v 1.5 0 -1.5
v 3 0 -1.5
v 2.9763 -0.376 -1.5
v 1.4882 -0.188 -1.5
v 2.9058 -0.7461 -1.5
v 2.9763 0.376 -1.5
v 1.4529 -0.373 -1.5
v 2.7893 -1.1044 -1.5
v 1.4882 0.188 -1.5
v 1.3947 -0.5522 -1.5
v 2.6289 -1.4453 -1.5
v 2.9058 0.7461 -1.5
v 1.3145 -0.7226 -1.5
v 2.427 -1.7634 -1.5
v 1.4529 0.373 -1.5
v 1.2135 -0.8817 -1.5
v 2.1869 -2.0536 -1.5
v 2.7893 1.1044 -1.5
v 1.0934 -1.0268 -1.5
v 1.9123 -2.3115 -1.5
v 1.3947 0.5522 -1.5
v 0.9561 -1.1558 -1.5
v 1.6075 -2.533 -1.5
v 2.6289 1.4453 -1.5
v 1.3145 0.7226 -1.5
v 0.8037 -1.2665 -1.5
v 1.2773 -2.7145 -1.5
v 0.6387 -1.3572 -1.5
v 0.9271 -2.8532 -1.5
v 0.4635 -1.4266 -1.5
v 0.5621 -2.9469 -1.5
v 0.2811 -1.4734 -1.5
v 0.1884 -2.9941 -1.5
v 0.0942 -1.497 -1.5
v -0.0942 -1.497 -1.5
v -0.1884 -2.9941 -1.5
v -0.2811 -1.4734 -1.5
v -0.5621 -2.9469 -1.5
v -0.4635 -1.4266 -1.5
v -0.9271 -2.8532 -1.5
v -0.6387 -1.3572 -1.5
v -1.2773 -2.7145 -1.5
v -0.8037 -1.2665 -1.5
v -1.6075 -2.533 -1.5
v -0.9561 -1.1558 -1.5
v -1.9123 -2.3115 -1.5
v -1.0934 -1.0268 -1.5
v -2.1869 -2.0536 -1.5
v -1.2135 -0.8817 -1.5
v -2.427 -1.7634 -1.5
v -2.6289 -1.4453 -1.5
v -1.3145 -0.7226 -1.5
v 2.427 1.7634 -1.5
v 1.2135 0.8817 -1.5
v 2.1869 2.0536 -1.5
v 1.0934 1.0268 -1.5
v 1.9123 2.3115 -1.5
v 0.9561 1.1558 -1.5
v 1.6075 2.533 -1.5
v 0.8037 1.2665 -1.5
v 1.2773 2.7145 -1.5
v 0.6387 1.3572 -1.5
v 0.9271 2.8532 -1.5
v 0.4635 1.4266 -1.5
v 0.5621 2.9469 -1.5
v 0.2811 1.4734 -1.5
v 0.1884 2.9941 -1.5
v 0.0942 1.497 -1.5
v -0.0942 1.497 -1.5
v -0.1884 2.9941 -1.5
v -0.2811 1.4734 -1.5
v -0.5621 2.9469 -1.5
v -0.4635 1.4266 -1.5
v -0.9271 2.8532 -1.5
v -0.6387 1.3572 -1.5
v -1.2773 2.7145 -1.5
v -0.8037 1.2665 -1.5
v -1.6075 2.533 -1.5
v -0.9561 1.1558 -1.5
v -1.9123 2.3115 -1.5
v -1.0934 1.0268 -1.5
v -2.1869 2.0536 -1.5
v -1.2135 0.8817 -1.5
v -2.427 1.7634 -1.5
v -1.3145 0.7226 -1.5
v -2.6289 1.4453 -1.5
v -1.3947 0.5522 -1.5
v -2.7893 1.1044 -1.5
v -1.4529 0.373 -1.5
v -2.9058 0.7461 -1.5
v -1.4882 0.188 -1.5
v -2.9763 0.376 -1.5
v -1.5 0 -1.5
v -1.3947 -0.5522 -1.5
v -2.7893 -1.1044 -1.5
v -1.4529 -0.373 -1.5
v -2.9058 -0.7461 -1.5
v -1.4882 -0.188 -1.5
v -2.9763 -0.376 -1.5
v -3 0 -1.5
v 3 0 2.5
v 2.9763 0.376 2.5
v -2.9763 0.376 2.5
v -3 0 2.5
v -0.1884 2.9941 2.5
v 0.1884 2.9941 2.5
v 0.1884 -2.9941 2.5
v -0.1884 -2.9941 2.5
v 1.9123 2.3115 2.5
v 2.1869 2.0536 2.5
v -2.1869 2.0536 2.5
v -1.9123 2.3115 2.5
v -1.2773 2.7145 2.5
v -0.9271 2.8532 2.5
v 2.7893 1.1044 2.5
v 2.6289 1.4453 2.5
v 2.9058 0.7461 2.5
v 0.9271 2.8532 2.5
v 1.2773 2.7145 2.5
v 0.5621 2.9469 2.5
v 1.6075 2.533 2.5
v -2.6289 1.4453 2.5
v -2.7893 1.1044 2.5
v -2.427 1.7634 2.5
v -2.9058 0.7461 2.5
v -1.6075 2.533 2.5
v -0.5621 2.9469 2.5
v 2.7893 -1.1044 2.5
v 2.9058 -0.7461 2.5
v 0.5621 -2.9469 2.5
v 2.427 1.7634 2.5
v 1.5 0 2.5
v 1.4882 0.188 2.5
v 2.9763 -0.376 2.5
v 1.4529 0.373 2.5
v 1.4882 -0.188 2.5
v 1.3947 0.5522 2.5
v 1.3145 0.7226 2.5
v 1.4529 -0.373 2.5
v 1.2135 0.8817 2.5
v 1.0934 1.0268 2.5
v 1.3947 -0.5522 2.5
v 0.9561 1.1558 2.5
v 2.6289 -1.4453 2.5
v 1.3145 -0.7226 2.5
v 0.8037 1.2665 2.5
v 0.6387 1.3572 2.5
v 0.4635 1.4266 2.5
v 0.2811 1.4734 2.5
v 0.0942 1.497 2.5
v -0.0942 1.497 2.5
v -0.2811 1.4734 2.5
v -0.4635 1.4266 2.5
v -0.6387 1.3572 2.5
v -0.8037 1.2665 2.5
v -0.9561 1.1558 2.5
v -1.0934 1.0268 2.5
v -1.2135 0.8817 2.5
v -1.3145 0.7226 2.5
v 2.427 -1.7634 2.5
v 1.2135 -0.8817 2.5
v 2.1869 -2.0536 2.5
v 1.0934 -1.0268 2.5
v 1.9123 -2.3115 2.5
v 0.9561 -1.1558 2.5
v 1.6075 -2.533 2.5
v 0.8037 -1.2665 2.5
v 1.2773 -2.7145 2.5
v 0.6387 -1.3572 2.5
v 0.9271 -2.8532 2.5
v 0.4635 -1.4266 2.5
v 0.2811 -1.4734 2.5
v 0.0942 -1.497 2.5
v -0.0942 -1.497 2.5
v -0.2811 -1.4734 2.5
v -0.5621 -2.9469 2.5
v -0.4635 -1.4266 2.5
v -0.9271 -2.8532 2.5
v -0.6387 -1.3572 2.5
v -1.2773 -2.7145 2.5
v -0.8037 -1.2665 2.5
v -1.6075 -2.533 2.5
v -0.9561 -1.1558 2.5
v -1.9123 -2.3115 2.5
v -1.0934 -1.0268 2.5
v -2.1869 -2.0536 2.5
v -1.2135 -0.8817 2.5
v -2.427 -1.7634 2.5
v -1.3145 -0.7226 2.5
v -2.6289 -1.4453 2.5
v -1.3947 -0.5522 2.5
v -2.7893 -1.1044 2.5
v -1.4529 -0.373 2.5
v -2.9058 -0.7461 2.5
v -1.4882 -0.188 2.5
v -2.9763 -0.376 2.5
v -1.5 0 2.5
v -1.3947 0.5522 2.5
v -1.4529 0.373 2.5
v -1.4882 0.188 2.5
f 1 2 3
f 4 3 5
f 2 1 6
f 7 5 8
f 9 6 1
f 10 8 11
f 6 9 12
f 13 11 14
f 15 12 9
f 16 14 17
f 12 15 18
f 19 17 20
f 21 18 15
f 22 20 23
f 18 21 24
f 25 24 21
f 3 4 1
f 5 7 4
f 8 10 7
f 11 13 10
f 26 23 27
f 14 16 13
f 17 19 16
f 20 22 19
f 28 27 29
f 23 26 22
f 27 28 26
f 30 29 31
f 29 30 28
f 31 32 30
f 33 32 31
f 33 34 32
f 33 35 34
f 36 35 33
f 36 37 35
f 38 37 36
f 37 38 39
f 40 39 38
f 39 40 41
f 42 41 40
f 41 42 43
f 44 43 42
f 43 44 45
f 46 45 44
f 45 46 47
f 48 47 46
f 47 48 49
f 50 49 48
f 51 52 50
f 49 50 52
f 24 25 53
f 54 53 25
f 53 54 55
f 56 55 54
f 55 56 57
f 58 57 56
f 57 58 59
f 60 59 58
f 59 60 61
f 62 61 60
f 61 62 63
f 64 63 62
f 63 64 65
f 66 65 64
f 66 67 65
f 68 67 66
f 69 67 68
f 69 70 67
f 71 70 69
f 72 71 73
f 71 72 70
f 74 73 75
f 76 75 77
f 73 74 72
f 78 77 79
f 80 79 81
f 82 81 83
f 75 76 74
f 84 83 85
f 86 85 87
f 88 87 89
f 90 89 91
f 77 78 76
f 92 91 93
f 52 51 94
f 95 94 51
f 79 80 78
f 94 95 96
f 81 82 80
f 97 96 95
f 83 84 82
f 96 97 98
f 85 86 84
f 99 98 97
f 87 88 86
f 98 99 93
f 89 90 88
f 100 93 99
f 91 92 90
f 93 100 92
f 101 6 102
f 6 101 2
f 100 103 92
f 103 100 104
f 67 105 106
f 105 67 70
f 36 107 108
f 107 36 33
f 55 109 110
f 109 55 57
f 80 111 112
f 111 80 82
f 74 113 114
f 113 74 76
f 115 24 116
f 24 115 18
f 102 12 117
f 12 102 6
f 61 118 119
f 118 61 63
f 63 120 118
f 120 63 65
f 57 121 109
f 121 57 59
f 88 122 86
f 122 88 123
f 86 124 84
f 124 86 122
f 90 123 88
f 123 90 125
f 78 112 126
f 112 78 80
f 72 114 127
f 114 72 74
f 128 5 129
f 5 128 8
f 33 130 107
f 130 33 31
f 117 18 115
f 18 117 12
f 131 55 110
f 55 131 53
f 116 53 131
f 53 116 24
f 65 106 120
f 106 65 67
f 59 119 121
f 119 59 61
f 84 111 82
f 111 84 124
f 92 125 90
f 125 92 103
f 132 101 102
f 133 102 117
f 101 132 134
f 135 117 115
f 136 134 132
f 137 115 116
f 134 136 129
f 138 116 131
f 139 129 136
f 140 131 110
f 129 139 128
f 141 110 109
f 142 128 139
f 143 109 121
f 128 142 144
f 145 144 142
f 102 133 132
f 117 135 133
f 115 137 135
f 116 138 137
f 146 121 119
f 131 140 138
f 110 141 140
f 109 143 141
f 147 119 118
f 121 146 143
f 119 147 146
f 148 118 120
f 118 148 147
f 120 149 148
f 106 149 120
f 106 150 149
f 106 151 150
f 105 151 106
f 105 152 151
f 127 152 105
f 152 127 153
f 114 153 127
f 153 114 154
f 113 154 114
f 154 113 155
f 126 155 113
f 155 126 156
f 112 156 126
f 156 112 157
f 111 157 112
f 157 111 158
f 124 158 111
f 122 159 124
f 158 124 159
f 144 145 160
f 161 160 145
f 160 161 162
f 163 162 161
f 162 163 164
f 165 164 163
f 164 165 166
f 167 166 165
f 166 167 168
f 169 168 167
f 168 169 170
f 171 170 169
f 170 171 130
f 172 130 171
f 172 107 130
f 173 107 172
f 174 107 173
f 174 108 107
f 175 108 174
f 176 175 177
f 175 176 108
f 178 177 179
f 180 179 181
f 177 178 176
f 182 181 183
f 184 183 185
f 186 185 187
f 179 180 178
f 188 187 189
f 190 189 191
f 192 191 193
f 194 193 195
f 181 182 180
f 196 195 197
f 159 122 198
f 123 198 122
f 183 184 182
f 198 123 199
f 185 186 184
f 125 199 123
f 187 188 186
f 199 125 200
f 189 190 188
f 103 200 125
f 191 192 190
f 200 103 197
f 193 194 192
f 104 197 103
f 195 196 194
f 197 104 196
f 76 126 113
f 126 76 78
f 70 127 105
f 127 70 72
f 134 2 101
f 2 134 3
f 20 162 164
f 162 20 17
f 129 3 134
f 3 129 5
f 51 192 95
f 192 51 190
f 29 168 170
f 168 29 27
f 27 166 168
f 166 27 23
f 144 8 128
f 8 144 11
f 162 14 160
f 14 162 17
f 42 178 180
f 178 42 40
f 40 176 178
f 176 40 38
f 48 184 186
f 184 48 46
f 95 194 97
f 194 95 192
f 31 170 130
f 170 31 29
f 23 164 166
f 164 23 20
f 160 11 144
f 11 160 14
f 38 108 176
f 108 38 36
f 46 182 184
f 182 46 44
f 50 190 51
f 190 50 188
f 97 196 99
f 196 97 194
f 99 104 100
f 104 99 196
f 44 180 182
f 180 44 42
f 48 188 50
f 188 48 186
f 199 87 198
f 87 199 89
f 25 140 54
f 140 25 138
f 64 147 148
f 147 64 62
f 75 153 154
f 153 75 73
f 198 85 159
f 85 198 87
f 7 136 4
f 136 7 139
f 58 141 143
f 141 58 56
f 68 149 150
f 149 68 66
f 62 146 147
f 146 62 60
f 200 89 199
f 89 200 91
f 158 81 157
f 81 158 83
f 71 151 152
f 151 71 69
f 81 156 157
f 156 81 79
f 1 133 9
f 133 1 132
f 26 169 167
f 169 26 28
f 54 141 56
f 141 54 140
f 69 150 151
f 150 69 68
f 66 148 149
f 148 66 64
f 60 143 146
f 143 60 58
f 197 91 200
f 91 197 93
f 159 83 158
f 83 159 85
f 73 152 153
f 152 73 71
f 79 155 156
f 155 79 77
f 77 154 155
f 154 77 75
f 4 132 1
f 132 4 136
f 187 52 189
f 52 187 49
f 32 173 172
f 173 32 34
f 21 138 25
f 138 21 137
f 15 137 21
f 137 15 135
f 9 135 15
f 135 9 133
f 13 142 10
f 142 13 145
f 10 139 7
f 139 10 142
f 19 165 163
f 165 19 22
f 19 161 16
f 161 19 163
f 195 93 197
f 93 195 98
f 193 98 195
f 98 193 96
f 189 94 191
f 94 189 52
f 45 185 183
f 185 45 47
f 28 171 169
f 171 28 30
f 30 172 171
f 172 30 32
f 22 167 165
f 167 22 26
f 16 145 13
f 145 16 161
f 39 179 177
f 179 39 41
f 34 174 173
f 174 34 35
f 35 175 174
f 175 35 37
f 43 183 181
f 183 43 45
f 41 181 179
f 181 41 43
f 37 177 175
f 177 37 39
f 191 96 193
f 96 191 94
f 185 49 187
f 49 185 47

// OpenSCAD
$fn = 50;


difference() {
	union() {
		translate(v = [0, 0, -1.5000000000]) {
			rotate(a = [0, 0, 0]) {
				cylinder(h = 3, r = 1.0000000000);
			}
		}
		translate(v = [0, 0, -1.5000000000]) {
			rotate(a = [0, 0, 0]) {
				cylinder(h = 4, r = 3.0000000000);
			}
		}
	}
	union() {
		translate(v = [0, 0, -125.0000000000]) {
			rotate(a = [0, 0, 0]) {
				cylinder(h = 250, r = 1.5000000000);
			}
		}
	}
}
